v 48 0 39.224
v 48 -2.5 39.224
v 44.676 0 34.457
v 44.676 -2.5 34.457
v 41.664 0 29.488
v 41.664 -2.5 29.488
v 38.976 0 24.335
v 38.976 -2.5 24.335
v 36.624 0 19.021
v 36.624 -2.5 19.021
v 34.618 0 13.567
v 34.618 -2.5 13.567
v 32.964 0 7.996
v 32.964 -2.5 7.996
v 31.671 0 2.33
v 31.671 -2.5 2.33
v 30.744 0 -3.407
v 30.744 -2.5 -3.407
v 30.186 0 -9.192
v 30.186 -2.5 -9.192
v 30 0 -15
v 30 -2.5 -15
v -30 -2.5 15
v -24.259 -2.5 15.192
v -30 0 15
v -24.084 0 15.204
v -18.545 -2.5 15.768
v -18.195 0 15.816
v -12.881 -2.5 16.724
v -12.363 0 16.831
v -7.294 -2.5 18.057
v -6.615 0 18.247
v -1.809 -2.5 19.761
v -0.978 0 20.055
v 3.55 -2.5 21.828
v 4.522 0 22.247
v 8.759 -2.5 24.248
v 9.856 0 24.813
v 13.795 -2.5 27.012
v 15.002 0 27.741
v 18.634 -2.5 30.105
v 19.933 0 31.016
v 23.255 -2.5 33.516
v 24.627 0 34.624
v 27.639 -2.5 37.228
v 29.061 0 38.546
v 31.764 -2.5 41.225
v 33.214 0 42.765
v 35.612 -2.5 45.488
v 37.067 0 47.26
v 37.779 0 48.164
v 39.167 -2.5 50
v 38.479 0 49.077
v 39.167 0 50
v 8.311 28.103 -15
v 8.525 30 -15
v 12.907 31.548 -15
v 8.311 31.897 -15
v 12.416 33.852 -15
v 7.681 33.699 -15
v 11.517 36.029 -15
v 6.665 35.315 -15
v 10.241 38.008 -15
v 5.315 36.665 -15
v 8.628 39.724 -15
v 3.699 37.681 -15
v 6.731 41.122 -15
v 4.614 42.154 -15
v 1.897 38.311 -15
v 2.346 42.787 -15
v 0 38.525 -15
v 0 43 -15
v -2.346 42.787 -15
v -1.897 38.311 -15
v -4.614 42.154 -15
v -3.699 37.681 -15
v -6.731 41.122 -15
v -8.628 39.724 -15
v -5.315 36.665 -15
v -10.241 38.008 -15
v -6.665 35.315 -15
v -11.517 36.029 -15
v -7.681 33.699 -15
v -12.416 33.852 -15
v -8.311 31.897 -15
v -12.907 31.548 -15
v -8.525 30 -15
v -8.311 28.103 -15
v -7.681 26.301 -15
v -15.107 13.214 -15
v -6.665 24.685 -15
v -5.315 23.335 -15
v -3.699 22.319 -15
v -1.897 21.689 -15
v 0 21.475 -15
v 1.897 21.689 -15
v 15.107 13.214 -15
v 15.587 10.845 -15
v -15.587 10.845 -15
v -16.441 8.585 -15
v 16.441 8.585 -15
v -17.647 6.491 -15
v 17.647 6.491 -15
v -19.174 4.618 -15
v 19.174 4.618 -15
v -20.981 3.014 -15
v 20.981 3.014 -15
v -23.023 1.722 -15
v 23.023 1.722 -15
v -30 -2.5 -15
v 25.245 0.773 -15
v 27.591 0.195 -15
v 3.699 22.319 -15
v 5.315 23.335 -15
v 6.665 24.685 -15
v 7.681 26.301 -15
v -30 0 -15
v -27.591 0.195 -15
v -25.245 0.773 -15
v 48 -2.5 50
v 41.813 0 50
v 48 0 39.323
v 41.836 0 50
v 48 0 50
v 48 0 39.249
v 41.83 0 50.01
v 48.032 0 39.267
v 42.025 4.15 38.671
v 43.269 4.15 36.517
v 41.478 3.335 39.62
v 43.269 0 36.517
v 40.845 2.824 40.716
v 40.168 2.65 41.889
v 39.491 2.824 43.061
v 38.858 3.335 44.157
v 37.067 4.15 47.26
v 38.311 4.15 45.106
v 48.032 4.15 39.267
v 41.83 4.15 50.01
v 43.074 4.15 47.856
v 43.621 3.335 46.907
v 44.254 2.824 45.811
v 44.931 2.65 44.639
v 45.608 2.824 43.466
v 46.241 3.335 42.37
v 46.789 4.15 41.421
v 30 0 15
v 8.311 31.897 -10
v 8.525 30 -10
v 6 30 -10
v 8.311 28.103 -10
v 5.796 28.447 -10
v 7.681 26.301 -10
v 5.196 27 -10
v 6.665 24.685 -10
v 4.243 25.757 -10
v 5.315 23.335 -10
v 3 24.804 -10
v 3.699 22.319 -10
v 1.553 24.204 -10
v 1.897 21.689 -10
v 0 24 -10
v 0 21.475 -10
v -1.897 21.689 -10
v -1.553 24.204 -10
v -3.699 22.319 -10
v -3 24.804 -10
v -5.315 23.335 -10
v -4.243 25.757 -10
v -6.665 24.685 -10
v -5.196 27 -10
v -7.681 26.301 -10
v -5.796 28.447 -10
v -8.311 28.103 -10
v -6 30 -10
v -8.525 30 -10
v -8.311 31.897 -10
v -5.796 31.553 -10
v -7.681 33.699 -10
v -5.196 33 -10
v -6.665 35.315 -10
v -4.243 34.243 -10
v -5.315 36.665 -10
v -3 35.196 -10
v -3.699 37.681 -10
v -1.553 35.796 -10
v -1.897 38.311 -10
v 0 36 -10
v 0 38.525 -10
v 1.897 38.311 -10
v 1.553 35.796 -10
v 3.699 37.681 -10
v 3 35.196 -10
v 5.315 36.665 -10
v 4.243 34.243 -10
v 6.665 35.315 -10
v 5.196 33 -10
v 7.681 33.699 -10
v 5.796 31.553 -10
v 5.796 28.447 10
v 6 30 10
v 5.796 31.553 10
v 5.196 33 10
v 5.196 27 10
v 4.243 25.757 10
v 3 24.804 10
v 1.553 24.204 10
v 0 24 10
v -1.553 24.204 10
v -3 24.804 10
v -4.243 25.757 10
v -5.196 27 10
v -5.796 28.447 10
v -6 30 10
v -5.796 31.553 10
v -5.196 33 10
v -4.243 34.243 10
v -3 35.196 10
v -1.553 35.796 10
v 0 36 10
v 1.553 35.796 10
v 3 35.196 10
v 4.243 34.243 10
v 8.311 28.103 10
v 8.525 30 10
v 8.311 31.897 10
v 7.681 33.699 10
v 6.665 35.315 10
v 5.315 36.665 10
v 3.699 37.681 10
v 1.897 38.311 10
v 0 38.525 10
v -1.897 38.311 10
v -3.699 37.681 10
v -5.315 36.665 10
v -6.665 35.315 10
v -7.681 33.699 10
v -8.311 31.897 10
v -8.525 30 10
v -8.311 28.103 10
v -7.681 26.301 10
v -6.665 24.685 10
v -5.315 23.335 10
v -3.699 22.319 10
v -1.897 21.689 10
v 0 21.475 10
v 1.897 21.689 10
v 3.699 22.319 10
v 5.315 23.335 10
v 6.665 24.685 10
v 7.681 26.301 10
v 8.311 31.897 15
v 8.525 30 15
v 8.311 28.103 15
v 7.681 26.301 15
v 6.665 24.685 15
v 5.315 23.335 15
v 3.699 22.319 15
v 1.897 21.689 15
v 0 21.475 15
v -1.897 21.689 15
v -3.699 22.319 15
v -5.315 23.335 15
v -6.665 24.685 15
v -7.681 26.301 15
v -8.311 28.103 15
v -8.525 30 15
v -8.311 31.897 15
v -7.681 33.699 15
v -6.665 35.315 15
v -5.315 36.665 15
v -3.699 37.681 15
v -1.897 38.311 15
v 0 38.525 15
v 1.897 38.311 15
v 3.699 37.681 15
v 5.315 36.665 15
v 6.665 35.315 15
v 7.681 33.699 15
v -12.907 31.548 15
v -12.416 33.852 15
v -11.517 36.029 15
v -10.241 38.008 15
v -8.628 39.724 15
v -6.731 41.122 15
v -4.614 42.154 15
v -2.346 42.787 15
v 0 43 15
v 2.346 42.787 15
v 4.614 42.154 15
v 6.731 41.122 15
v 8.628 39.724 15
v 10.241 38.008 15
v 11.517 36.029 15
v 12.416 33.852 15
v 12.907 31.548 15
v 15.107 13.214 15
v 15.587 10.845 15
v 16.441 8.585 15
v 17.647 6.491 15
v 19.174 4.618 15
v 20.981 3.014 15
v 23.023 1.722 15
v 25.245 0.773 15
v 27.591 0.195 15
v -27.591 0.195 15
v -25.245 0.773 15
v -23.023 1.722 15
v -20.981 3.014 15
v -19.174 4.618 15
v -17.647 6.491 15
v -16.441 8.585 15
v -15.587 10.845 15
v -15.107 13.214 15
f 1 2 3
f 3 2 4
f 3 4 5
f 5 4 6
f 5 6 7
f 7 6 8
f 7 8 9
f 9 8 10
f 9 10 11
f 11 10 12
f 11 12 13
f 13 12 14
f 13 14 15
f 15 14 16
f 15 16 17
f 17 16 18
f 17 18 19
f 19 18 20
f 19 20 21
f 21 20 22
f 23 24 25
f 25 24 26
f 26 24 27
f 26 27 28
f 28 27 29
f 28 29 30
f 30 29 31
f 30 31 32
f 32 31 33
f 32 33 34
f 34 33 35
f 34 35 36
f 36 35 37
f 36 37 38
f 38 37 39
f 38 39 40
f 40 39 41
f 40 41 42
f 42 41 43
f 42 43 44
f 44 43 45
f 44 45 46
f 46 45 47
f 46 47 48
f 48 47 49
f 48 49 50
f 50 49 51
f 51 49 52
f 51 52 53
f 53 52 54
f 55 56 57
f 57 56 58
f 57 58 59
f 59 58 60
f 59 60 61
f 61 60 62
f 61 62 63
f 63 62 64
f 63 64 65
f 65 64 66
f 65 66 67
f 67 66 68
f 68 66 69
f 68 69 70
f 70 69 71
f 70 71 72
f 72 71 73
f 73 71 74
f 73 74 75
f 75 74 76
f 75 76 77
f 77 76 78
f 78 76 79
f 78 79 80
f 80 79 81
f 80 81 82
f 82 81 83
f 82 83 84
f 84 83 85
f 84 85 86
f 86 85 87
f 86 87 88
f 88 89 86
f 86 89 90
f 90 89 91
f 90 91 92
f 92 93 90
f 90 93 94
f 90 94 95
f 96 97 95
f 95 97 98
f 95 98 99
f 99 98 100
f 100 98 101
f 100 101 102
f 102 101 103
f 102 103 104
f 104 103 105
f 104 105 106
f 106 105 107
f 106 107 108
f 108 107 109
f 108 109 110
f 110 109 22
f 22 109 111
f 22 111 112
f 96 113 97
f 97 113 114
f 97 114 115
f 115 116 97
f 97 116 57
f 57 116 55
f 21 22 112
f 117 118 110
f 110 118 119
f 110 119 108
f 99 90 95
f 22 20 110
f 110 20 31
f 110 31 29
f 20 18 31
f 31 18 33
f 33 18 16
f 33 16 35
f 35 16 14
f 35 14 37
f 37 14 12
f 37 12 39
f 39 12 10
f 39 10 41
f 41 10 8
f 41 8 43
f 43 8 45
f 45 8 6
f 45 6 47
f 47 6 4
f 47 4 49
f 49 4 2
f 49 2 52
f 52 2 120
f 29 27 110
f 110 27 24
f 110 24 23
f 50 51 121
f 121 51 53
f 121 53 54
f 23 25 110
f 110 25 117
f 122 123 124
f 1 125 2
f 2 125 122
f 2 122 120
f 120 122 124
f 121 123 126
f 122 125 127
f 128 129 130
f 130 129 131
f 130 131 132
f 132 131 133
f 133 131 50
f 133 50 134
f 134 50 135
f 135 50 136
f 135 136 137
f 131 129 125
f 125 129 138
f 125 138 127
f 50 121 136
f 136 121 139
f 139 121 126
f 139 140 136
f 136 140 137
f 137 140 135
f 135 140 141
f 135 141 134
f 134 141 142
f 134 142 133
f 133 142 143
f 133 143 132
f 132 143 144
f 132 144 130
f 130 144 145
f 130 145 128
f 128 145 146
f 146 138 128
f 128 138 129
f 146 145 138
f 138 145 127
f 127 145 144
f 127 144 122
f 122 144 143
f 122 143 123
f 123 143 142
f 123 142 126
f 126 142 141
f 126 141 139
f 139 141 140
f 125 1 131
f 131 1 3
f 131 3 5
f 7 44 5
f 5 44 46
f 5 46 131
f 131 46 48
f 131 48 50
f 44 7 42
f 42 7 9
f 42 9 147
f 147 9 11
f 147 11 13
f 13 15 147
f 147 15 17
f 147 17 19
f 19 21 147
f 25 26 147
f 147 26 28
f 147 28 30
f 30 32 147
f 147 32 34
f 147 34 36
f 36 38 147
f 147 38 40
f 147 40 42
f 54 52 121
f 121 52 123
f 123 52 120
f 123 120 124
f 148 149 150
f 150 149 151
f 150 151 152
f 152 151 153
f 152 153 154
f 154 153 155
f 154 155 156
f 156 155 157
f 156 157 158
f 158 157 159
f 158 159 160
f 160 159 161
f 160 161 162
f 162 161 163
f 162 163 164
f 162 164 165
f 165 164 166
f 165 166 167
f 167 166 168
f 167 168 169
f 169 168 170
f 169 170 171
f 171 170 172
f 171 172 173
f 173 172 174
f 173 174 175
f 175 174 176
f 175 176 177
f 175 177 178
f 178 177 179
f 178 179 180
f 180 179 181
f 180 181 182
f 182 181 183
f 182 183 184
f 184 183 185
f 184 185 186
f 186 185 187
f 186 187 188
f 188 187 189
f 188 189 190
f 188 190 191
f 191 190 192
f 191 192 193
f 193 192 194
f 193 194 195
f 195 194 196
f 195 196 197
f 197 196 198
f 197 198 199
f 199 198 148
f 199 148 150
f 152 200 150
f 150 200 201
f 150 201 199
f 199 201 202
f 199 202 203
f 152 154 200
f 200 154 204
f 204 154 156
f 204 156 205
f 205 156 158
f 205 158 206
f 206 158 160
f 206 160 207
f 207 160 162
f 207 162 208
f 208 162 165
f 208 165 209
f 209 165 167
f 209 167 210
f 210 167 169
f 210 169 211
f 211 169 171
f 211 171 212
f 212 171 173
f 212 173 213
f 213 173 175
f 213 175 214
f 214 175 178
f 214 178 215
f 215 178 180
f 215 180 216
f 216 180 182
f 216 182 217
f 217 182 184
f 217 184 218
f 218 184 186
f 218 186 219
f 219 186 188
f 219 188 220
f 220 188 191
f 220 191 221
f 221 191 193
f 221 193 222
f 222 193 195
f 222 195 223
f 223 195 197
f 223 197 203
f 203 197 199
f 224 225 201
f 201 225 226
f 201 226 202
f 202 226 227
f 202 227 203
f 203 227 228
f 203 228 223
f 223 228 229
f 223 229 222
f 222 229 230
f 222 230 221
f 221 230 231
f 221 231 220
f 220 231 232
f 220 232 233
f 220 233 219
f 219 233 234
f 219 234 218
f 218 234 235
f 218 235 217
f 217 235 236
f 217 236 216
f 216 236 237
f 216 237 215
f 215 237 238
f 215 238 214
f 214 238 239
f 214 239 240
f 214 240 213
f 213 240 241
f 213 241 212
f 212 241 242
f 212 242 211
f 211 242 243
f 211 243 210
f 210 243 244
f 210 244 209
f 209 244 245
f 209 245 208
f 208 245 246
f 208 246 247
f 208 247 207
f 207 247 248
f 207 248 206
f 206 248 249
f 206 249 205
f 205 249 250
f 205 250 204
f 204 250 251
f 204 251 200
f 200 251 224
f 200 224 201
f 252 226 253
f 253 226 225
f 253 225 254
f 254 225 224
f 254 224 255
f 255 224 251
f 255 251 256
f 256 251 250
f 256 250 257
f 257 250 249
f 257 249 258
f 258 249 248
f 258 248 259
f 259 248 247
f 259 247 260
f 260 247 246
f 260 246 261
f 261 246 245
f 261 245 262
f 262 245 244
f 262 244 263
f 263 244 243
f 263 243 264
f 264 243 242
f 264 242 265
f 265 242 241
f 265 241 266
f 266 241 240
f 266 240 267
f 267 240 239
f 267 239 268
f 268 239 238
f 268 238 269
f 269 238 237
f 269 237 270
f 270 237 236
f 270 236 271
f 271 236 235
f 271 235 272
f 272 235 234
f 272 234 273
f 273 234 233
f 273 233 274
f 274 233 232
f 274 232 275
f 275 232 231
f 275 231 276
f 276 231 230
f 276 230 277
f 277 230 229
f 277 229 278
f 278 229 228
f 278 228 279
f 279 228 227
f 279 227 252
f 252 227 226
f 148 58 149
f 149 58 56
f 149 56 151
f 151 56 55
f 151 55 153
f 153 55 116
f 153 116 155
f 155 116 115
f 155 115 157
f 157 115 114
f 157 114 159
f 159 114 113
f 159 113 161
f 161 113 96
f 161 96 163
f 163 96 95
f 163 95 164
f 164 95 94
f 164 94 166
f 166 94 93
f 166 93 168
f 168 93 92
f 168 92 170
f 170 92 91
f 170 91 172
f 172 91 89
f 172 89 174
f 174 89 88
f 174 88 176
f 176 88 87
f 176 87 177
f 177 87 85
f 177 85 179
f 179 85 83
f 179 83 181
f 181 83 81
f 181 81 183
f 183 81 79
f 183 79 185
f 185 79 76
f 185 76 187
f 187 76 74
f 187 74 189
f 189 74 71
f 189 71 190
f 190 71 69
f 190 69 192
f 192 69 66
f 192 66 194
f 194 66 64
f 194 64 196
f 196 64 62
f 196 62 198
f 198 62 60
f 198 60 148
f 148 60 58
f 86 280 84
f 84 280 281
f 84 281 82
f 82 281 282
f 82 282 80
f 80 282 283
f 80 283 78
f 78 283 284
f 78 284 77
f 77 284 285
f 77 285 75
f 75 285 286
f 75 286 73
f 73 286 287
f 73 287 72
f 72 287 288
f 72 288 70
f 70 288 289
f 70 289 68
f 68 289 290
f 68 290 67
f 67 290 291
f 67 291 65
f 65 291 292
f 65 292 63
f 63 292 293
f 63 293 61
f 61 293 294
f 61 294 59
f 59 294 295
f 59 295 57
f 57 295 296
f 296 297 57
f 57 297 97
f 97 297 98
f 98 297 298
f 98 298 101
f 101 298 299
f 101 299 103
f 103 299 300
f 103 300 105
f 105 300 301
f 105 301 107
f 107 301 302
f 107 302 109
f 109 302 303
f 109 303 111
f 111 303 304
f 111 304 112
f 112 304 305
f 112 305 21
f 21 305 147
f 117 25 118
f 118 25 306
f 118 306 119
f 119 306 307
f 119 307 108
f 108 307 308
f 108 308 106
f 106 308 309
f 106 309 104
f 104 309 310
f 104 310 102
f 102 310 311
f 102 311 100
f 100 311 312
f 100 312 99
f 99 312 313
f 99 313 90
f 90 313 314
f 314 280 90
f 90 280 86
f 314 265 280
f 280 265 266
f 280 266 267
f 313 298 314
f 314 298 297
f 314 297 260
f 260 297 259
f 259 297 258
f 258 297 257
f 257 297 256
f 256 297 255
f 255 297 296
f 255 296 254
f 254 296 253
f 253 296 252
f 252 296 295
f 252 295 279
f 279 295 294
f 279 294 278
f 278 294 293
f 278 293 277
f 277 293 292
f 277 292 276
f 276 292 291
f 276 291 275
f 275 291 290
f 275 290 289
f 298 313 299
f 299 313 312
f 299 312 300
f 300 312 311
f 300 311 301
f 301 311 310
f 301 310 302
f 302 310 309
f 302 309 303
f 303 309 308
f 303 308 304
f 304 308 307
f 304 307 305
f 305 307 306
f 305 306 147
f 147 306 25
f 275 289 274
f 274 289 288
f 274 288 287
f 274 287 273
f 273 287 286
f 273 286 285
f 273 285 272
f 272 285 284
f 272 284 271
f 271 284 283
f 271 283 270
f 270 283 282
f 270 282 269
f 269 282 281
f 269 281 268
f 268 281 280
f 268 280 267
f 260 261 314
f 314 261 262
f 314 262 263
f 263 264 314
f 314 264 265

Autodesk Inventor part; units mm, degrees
ref_plane "YZ Plane" through (0, 0, 0) normal (1, 0, 0) x (0, 1, 0)
ref_plane "XZ Plane" through (0, 0, 0) normal (0, 1, 0) x (-1, 0, 0)
sketch "Sketch1" plane through (0, 0, 0) normal (0, 0, 1) x (1, 0, 0)
  circle A0 centre (0, 30) radius 8.525
  circle A1 centre (0, 30) radius 6
  arc A2 (-30, 0) -> (-15.1068, 13.2135) centre (-30, 15) ccw
  arc A3 (15.1068, 13.2135) -> (30, 0) centre (30, 15) ccw
  arc A4 (12.9075, 31.5483) -> (-12.9075, 31.5483) centre (0, 30) ccw
  line L0 (-12.9075, 31.5483) -> (-15.1068, 13.2135)
  line L1 (12.9075, 31.5483) -> (15.1068, 13.2135)
  line L2 (30, 0) -> (-30, 0)
  line L3 (-30, 0) -> (-30, -2.5)
  line L4 (-30, -2.5) -> (30, -2.5)
  line L5 (30, -2.5) -> (30, 0)
  point P0 (0, 0)
  point P1 (0, 0)
  dimension "d2" = 17.05
  dimension "d3" = 12
  dimension "d9" = 30
  dimension "d12" = 13
  dimension "d15" = 15
  dimension "d16" = 60
  dimension "d17" = 2.5
extrude "Extrusion3" add sketch "Sketch1" along normal mid plane 30 contours A2 L0 A4 L1 A3 L2
extrude "Extrusion4" add sketch "Sketch1" along normal mid plane 20 contours A0
extrude "Extrusion5" add sketch "Sketch1" against normal blind 15 contours L2 L5 L4 L3
extrude "Extrusion6" add sketch "Sketch1" along normal blind 50 contours L2 L5 L4 L3
ref_plane "Work Plane1" through (30, -2.5, 50) normal (0.866, 0, 0.5) x (0, 1, 0)
ref_plane "Work Plane3" through (36.4952, -2.5, 53.75) normal (0.866, 0, 0.5) x (0, 1, 0)
sketch "Sketch5" plane through (36.4952, -2.5, 53.75) normal (0.866, 0, 0.5) x (0, 1, 0)
  line L0 (2.5, -30.3109) -> (2.5, -18.3109) construction
  circle A0 centre (10.5, -12.1087) radius 5.35
  circle A1 centre (10.5, -12.1087) radius 7.3 construction
  line L1 (2.5, -18.3109) -> (6.65, -18.3109)
  line L2 (6.65, -18.3109) -> (6.65, -5.9065)
  line L3 (6.65, -5.9065) -> (2.5, -5.9065)
  line L4 (2.5, -5.9065) -> (2.5, -18.3109)
  point P0 (6.65, -15.8235)
  point P1 (6.65, -8.3938)
  dimension "d46" = 12
  dimension "d47" = 10.7
  dimension "d48" = 14.6
  dimension "d49" = 8
  dimension "d51" = 1.5
extrude "Extrusion9" add sketch "Sketch5" along normal mid plane 5.5 contours A0 L2 L1 L4 L3
sketch "Sketch6" plane through (30, -2.5, -15) normal (1, 0, 0) x (0, 0, -1)
  line L0 (0, 0) -> (-65, 0) projected
  line L1 (0, 2.5) -> (0, 0) projected
  line L2 (0, 2.5) -> (-30, 2.5) projected
  line L3 (-30, 2.5) -> (-65, 2.5) projected
  line L4 (-65, 0) -> (-65, 2.5) projected
  point P0 (-15, 2.5)
extrude "Extrusion10" add sketch "Sketch6" along normal blind 18
sketch "Sketch7" plane through (-30, 0, 15) normal (0, 1, 0) x (1, 0, 0)
  line L0 (0, 30) -> (0, -35) projected
  arc A0 (69.1673, -35) -> (0, 0) centre (0, -85.8445) ccw
  line L1 (0, -35) -> (78, -35) projected
  line L2 (0, 0) -> (60, 0) projected
  arc A1 (60, 30) -> (78, -24.2242) centre (150.6739, 30) ccw
  line L3 (60, 30) -> (60, 0) projected
  line L4 (78, 30) -> (78, -35) projected
  line L5 (60, 30) -> (78, 30) projected
  point P0 (30, 15)
  point P1 (67.0668, -32.2599)
  point P2 (78.0322, -24.2673)
extrude "Extrusion11" cut sketch "Sketch7" against normal through all contours A0 L1 L0 | L5 L4 A1
properties part number "Support"
